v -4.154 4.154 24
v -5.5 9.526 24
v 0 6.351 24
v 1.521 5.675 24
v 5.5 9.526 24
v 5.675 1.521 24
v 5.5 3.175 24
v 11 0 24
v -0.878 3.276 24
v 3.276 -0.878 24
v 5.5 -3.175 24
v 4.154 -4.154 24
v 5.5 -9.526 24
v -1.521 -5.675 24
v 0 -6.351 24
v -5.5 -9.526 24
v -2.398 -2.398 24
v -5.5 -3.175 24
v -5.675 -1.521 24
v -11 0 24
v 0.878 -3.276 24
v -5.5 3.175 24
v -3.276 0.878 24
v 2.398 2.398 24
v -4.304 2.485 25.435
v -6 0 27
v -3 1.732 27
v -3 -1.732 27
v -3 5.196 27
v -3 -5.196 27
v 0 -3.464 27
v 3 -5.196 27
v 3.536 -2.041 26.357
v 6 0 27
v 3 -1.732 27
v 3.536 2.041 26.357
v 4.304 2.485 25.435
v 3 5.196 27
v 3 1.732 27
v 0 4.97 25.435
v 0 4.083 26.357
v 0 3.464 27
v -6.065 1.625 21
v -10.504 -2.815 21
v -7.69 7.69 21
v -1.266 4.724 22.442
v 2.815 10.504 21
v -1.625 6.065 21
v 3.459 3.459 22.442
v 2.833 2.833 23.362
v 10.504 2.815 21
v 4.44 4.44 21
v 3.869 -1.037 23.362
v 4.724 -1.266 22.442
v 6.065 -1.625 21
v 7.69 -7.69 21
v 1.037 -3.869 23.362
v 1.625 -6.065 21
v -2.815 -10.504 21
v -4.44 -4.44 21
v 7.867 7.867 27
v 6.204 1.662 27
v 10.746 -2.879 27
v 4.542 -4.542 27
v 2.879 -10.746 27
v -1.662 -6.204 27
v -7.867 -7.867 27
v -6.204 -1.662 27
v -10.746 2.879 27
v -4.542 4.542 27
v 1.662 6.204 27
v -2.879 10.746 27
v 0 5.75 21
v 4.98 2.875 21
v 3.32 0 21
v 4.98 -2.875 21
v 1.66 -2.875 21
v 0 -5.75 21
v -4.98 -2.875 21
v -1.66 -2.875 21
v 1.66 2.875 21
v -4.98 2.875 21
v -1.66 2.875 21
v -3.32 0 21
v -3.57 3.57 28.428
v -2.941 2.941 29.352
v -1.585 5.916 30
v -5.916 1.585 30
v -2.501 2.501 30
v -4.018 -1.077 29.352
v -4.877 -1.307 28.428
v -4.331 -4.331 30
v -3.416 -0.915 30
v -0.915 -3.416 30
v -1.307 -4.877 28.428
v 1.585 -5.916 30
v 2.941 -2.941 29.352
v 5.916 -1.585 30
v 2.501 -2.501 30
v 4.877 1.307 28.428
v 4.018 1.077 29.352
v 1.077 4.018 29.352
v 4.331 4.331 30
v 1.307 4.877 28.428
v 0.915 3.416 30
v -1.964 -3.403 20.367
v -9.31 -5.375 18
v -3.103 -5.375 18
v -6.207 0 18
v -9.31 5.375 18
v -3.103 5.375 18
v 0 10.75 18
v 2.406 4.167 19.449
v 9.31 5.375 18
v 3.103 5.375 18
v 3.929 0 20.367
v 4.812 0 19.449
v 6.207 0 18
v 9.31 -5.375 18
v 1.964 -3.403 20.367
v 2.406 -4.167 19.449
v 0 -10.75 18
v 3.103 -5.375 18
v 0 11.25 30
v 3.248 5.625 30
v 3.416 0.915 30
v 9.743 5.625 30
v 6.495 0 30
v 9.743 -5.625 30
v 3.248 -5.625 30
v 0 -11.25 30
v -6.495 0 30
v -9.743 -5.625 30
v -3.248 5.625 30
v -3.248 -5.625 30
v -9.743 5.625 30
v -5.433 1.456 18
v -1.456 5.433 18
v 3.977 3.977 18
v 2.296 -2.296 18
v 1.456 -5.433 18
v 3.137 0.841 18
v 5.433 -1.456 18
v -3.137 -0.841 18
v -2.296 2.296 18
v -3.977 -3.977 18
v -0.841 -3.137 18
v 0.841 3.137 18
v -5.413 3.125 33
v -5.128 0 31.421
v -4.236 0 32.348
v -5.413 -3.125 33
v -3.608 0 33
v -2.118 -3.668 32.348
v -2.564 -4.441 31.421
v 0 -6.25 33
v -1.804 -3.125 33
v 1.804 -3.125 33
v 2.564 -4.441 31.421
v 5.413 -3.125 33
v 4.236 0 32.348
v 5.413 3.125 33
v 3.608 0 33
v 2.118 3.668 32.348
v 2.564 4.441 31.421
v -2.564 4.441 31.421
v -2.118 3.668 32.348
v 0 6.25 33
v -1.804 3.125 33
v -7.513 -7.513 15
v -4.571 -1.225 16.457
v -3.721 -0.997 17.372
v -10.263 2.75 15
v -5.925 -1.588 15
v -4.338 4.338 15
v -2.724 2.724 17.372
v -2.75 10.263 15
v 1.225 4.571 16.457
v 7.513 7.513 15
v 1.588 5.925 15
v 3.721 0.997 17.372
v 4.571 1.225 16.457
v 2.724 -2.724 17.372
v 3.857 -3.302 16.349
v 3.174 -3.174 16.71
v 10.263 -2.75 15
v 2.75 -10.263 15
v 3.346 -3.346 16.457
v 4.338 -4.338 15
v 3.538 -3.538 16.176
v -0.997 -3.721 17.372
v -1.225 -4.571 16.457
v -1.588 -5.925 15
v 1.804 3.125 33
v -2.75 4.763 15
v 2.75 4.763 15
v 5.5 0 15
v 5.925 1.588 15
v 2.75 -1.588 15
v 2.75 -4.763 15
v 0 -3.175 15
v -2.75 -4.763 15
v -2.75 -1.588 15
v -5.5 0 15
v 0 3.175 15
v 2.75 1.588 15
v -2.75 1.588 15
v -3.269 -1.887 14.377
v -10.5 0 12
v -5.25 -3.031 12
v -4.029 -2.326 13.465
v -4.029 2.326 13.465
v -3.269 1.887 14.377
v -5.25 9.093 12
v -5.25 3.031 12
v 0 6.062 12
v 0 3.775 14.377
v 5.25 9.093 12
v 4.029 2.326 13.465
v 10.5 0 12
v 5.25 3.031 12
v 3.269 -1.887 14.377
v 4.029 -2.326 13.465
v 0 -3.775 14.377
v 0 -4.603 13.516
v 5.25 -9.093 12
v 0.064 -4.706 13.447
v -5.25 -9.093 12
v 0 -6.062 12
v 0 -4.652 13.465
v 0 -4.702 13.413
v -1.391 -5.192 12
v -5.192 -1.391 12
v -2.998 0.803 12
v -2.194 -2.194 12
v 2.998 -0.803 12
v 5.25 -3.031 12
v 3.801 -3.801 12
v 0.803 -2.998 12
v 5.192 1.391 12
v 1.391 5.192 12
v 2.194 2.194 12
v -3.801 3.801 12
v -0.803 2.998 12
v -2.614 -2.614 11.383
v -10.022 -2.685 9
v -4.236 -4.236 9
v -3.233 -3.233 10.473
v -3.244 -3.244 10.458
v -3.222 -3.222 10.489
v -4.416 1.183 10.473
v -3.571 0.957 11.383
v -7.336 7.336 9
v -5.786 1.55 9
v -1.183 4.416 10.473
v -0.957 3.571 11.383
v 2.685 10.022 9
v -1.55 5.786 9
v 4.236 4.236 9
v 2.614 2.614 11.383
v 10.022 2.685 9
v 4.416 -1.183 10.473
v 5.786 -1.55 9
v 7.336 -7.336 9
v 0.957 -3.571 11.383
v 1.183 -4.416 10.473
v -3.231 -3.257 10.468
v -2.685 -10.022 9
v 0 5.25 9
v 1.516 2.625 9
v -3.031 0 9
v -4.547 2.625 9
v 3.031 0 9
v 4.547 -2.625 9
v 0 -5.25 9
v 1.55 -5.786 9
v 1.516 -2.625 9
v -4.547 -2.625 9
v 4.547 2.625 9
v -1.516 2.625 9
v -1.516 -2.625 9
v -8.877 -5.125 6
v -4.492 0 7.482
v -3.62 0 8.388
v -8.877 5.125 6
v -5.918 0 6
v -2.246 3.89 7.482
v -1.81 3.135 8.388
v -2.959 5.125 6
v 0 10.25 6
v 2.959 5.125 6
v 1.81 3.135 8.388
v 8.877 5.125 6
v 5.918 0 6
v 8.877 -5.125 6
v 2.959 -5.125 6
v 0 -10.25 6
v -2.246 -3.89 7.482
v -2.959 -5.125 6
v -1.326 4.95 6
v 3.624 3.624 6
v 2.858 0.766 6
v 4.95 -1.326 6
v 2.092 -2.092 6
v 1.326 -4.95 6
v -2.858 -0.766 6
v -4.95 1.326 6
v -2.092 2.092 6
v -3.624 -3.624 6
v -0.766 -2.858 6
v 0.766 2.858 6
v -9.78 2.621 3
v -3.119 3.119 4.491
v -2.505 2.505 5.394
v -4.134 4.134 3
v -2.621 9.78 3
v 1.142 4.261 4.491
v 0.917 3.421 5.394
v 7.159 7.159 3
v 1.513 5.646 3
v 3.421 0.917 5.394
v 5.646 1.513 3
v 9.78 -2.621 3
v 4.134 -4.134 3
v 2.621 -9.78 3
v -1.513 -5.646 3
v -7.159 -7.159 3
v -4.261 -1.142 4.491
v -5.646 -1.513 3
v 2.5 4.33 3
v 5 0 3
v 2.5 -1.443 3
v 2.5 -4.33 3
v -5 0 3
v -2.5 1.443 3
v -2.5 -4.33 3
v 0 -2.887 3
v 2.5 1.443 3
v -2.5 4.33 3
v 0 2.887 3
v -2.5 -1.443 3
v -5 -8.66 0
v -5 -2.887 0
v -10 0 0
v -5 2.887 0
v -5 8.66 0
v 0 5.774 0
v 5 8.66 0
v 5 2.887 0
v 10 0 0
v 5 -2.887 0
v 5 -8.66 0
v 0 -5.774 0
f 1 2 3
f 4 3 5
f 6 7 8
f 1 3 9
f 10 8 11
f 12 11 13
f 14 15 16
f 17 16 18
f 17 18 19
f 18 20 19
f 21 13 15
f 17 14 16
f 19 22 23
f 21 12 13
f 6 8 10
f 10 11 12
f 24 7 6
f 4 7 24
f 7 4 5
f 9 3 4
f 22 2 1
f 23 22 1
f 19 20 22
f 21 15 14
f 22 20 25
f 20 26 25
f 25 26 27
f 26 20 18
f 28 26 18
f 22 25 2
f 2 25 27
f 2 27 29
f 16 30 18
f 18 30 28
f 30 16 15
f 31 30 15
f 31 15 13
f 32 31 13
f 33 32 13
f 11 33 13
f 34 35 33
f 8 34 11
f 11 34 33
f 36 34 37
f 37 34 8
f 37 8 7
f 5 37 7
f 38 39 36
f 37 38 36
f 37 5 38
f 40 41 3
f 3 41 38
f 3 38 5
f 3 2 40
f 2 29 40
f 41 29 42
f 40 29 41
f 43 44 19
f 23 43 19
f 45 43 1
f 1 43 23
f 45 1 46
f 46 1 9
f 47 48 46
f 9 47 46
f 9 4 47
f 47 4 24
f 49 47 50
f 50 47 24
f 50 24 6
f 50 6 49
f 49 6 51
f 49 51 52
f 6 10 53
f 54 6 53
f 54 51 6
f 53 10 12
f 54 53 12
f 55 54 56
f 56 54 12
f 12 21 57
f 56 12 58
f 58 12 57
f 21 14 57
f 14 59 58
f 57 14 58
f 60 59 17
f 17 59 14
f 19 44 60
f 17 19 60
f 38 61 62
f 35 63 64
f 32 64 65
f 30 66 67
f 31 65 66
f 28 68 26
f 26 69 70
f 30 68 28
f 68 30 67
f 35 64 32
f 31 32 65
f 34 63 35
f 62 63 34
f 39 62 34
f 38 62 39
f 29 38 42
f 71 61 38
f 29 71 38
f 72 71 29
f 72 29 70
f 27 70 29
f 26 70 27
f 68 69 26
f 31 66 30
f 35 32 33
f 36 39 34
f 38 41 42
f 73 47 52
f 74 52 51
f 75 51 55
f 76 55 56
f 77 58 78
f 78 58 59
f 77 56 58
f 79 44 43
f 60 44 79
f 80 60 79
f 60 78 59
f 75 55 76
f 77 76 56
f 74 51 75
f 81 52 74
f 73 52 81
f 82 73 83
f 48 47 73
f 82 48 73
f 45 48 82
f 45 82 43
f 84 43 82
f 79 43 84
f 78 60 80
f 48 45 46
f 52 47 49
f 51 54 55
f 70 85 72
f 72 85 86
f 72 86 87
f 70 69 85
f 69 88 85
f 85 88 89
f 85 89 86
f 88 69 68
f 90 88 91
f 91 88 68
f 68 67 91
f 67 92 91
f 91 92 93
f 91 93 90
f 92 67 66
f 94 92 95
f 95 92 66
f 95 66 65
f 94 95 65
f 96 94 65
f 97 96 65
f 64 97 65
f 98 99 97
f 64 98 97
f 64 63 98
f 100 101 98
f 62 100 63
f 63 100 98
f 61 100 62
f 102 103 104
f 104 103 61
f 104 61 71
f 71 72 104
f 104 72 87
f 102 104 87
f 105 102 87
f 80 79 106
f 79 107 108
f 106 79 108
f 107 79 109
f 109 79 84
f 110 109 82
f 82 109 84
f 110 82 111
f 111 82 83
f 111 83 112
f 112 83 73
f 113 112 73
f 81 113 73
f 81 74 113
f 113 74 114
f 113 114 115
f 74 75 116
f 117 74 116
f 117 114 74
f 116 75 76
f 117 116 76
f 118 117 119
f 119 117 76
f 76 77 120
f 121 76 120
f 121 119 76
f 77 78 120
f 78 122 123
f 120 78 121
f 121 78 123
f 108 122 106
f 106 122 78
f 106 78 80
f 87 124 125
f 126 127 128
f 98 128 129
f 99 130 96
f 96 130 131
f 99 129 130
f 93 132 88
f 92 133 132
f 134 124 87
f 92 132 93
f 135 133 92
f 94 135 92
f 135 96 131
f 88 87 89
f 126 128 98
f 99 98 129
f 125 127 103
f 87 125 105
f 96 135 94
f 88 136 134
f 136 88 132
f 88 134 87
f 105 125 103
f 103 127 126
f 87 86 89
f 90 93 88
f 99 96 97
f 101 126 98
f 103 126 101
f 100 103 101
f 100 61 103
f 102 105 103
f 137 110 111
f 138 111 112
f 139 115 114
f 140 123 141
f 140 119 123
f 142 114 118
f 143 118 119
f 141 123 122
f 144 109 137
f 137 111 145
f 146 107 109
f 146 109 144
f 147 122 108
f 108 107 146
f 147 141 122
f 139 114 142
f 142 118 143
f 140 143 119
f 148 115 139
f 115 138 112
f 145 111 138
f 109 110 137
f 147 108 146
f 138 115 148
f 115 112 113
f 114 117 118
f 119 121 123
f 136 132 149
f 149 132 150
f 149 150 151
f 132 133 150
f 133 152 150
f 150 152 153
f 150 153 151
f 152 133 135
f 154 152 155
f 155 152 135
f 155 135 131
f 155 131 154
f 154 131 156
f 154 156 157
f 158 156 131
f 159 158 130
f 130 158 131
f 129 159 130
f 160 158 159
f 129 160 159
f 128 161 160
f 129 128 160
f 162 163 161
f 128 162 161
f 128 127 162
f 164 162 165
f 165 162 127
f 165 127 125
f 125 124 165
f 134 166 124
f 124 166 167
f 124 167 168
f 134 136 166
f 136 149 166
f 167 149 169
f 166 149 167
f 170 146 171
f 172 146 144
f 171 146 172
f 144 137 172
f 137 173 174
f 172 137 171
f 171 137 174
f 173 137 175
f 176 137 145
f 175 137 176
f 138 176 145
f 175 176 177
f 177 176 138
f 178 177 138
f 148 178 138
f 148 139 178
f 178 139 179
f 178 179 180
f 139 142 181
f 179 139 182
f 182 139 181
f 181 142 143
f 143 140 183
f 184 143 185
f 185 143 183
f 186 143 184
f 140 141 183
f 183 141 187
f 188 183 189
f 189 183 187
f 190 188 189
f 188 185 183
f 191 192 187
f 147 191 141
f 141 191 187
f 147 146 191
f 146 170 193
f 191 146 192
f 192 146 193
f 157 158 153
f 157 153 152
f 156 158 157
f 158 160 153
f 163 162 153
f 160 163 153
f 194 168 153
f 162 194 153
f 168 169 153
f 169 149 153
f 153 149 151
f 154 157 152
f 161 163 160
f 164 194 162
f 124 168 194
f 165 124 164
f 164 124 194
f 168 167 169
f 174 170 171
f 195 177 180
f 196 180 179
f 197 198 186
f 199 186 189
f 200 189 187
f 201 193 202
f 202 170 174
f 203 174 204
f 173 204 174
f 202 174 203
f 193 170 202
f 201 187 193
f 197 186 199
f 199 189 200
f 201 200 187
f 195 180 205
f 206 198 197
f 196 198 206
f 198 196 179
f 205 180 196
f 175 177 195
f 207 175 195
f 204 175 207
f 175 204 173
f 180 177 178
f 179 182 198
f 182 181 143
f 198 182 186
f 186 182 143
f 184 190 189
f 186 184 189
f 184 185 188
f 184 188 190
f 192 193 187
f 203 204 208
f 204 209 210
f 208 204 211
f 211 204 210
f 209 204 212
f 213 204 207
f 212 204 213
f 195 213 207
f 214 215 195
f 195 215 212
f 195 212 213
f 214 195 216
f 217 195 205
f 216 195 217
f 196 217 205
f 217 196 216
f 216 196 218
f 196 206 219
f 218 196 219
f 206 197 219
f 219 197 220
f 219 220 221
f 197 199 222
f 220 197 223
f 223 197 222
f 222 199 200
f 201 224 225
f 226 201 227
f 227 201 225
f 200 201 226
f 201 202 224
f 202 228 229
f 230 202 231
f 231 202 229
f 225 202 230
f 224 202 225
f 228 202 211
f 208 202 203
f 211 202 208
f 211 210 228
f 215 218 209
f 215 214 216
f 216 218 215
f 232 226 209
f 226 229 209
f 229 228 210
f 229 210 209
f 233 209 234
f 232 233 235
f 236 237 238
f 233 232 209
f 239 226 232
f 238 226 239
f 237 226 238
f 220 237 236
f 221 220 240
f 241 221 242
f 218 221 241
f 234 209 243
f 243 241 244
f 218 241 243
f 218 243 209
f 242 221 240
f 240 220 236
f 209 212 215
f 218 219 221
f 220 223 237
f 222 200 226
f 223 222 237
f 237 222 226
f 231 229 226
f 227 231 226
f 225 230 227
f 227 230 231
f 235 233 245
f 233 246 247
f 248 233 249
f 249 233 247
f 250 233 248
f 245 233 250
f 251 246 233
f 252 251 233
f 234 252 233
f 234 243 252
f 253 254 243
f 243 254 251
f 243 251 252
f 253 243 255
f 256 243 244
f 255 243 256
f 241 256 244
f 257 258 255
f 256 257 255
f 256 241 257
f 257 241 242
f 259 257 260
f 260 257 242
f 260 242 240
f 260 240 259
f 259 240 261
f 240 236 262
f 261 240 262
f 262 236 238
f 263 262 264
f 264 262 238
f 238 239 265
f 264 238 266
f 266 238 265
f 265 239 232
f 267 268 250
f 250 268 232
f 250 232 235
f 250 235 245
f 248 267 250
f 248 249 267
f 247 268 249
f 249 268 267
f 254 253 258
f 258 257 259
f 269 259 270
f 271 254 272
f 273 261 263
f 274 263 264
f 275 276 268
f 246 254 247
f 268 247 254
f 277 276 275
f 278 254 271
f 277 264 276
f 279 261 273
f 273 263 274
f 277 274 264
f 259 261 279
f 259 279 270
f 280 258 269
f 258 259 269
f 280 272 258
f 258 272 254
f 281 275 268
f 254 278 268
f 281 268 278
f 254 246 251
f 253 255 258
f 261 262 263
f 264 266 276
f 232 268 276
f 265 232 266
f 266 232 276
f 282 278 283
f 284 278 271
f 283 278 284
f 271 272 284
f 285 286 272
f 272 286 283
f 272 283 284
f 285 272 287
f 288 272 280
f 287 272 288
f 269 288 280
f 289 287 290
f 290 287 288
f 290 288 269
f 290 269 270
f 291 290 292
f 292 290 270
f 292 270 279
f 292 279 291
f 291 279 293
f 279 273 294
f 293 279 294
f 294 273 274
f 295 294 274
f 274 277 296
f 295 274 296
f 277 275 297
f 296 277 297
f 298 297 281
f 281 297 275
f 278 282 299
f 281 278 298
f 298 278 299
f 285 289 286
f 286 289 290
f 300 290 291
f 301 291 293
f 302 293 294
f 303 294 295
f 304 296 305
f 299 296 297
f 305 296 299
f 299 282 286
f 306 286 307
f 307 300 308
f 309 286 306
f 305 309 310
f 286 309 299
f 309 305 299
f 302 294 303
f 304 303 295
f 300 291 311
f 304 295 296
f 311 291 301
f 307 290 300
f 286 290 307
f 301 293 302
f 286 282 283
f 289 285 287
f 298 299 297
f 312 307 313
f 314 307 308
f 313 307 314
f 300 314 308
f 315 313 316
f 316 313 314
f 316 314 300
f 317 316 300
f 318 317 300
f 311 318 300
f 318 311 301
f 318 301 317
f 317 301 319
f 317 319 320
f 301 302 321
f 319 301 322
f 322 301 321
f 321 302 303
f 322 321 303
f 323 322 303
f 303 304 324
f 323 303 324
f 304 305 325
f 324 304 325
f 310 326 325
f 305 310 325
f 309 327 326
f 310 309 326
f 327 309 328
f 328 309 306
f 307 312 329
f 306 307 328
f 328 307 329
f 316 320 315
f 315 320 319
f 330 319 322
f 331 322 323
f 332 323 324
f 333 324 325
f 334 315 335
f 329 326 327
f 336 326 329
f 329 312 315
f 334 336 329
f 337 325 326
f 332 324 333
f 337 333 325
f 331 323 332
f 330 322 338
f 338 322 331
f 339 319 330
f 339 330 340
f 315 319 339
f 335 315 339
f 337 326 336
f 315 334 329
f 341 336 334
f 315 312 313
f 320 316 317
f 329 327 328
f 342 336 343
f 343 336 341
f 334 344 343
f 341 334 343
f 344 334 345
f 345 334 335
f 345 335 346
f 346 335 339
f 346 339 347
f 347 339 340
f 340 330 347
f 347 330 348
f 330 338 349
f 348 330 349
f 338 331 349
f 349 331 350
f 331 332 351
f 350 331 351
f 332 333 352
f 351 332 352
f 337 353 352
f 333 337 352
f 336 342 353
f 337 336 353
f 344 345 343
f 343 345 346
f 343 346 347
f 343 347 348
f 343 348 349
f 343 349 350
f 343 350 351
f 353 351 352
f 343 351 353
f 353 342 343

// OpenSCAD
h=3.0;
s=5;
st=0.125;
S=10;
M=10;
fn = 3;
union(){
	for(i=[0:M]){
		rotate([0,0,45*i])
		translate([0,0,i*h]){
			cylinder(r1=S+st*i,r2=S-s+st*i,h=h,$fn=fn);
			rotate([0,0,60])
			cylinder(r1=S+st*i,r2=S-s+st*i,h=h,$fn=fn);
			rotate([0,0,120])
			cylinder(r1=S+st*i,r2=S-s+st*i,h=h,$fn=fn);
		}
	}
}
